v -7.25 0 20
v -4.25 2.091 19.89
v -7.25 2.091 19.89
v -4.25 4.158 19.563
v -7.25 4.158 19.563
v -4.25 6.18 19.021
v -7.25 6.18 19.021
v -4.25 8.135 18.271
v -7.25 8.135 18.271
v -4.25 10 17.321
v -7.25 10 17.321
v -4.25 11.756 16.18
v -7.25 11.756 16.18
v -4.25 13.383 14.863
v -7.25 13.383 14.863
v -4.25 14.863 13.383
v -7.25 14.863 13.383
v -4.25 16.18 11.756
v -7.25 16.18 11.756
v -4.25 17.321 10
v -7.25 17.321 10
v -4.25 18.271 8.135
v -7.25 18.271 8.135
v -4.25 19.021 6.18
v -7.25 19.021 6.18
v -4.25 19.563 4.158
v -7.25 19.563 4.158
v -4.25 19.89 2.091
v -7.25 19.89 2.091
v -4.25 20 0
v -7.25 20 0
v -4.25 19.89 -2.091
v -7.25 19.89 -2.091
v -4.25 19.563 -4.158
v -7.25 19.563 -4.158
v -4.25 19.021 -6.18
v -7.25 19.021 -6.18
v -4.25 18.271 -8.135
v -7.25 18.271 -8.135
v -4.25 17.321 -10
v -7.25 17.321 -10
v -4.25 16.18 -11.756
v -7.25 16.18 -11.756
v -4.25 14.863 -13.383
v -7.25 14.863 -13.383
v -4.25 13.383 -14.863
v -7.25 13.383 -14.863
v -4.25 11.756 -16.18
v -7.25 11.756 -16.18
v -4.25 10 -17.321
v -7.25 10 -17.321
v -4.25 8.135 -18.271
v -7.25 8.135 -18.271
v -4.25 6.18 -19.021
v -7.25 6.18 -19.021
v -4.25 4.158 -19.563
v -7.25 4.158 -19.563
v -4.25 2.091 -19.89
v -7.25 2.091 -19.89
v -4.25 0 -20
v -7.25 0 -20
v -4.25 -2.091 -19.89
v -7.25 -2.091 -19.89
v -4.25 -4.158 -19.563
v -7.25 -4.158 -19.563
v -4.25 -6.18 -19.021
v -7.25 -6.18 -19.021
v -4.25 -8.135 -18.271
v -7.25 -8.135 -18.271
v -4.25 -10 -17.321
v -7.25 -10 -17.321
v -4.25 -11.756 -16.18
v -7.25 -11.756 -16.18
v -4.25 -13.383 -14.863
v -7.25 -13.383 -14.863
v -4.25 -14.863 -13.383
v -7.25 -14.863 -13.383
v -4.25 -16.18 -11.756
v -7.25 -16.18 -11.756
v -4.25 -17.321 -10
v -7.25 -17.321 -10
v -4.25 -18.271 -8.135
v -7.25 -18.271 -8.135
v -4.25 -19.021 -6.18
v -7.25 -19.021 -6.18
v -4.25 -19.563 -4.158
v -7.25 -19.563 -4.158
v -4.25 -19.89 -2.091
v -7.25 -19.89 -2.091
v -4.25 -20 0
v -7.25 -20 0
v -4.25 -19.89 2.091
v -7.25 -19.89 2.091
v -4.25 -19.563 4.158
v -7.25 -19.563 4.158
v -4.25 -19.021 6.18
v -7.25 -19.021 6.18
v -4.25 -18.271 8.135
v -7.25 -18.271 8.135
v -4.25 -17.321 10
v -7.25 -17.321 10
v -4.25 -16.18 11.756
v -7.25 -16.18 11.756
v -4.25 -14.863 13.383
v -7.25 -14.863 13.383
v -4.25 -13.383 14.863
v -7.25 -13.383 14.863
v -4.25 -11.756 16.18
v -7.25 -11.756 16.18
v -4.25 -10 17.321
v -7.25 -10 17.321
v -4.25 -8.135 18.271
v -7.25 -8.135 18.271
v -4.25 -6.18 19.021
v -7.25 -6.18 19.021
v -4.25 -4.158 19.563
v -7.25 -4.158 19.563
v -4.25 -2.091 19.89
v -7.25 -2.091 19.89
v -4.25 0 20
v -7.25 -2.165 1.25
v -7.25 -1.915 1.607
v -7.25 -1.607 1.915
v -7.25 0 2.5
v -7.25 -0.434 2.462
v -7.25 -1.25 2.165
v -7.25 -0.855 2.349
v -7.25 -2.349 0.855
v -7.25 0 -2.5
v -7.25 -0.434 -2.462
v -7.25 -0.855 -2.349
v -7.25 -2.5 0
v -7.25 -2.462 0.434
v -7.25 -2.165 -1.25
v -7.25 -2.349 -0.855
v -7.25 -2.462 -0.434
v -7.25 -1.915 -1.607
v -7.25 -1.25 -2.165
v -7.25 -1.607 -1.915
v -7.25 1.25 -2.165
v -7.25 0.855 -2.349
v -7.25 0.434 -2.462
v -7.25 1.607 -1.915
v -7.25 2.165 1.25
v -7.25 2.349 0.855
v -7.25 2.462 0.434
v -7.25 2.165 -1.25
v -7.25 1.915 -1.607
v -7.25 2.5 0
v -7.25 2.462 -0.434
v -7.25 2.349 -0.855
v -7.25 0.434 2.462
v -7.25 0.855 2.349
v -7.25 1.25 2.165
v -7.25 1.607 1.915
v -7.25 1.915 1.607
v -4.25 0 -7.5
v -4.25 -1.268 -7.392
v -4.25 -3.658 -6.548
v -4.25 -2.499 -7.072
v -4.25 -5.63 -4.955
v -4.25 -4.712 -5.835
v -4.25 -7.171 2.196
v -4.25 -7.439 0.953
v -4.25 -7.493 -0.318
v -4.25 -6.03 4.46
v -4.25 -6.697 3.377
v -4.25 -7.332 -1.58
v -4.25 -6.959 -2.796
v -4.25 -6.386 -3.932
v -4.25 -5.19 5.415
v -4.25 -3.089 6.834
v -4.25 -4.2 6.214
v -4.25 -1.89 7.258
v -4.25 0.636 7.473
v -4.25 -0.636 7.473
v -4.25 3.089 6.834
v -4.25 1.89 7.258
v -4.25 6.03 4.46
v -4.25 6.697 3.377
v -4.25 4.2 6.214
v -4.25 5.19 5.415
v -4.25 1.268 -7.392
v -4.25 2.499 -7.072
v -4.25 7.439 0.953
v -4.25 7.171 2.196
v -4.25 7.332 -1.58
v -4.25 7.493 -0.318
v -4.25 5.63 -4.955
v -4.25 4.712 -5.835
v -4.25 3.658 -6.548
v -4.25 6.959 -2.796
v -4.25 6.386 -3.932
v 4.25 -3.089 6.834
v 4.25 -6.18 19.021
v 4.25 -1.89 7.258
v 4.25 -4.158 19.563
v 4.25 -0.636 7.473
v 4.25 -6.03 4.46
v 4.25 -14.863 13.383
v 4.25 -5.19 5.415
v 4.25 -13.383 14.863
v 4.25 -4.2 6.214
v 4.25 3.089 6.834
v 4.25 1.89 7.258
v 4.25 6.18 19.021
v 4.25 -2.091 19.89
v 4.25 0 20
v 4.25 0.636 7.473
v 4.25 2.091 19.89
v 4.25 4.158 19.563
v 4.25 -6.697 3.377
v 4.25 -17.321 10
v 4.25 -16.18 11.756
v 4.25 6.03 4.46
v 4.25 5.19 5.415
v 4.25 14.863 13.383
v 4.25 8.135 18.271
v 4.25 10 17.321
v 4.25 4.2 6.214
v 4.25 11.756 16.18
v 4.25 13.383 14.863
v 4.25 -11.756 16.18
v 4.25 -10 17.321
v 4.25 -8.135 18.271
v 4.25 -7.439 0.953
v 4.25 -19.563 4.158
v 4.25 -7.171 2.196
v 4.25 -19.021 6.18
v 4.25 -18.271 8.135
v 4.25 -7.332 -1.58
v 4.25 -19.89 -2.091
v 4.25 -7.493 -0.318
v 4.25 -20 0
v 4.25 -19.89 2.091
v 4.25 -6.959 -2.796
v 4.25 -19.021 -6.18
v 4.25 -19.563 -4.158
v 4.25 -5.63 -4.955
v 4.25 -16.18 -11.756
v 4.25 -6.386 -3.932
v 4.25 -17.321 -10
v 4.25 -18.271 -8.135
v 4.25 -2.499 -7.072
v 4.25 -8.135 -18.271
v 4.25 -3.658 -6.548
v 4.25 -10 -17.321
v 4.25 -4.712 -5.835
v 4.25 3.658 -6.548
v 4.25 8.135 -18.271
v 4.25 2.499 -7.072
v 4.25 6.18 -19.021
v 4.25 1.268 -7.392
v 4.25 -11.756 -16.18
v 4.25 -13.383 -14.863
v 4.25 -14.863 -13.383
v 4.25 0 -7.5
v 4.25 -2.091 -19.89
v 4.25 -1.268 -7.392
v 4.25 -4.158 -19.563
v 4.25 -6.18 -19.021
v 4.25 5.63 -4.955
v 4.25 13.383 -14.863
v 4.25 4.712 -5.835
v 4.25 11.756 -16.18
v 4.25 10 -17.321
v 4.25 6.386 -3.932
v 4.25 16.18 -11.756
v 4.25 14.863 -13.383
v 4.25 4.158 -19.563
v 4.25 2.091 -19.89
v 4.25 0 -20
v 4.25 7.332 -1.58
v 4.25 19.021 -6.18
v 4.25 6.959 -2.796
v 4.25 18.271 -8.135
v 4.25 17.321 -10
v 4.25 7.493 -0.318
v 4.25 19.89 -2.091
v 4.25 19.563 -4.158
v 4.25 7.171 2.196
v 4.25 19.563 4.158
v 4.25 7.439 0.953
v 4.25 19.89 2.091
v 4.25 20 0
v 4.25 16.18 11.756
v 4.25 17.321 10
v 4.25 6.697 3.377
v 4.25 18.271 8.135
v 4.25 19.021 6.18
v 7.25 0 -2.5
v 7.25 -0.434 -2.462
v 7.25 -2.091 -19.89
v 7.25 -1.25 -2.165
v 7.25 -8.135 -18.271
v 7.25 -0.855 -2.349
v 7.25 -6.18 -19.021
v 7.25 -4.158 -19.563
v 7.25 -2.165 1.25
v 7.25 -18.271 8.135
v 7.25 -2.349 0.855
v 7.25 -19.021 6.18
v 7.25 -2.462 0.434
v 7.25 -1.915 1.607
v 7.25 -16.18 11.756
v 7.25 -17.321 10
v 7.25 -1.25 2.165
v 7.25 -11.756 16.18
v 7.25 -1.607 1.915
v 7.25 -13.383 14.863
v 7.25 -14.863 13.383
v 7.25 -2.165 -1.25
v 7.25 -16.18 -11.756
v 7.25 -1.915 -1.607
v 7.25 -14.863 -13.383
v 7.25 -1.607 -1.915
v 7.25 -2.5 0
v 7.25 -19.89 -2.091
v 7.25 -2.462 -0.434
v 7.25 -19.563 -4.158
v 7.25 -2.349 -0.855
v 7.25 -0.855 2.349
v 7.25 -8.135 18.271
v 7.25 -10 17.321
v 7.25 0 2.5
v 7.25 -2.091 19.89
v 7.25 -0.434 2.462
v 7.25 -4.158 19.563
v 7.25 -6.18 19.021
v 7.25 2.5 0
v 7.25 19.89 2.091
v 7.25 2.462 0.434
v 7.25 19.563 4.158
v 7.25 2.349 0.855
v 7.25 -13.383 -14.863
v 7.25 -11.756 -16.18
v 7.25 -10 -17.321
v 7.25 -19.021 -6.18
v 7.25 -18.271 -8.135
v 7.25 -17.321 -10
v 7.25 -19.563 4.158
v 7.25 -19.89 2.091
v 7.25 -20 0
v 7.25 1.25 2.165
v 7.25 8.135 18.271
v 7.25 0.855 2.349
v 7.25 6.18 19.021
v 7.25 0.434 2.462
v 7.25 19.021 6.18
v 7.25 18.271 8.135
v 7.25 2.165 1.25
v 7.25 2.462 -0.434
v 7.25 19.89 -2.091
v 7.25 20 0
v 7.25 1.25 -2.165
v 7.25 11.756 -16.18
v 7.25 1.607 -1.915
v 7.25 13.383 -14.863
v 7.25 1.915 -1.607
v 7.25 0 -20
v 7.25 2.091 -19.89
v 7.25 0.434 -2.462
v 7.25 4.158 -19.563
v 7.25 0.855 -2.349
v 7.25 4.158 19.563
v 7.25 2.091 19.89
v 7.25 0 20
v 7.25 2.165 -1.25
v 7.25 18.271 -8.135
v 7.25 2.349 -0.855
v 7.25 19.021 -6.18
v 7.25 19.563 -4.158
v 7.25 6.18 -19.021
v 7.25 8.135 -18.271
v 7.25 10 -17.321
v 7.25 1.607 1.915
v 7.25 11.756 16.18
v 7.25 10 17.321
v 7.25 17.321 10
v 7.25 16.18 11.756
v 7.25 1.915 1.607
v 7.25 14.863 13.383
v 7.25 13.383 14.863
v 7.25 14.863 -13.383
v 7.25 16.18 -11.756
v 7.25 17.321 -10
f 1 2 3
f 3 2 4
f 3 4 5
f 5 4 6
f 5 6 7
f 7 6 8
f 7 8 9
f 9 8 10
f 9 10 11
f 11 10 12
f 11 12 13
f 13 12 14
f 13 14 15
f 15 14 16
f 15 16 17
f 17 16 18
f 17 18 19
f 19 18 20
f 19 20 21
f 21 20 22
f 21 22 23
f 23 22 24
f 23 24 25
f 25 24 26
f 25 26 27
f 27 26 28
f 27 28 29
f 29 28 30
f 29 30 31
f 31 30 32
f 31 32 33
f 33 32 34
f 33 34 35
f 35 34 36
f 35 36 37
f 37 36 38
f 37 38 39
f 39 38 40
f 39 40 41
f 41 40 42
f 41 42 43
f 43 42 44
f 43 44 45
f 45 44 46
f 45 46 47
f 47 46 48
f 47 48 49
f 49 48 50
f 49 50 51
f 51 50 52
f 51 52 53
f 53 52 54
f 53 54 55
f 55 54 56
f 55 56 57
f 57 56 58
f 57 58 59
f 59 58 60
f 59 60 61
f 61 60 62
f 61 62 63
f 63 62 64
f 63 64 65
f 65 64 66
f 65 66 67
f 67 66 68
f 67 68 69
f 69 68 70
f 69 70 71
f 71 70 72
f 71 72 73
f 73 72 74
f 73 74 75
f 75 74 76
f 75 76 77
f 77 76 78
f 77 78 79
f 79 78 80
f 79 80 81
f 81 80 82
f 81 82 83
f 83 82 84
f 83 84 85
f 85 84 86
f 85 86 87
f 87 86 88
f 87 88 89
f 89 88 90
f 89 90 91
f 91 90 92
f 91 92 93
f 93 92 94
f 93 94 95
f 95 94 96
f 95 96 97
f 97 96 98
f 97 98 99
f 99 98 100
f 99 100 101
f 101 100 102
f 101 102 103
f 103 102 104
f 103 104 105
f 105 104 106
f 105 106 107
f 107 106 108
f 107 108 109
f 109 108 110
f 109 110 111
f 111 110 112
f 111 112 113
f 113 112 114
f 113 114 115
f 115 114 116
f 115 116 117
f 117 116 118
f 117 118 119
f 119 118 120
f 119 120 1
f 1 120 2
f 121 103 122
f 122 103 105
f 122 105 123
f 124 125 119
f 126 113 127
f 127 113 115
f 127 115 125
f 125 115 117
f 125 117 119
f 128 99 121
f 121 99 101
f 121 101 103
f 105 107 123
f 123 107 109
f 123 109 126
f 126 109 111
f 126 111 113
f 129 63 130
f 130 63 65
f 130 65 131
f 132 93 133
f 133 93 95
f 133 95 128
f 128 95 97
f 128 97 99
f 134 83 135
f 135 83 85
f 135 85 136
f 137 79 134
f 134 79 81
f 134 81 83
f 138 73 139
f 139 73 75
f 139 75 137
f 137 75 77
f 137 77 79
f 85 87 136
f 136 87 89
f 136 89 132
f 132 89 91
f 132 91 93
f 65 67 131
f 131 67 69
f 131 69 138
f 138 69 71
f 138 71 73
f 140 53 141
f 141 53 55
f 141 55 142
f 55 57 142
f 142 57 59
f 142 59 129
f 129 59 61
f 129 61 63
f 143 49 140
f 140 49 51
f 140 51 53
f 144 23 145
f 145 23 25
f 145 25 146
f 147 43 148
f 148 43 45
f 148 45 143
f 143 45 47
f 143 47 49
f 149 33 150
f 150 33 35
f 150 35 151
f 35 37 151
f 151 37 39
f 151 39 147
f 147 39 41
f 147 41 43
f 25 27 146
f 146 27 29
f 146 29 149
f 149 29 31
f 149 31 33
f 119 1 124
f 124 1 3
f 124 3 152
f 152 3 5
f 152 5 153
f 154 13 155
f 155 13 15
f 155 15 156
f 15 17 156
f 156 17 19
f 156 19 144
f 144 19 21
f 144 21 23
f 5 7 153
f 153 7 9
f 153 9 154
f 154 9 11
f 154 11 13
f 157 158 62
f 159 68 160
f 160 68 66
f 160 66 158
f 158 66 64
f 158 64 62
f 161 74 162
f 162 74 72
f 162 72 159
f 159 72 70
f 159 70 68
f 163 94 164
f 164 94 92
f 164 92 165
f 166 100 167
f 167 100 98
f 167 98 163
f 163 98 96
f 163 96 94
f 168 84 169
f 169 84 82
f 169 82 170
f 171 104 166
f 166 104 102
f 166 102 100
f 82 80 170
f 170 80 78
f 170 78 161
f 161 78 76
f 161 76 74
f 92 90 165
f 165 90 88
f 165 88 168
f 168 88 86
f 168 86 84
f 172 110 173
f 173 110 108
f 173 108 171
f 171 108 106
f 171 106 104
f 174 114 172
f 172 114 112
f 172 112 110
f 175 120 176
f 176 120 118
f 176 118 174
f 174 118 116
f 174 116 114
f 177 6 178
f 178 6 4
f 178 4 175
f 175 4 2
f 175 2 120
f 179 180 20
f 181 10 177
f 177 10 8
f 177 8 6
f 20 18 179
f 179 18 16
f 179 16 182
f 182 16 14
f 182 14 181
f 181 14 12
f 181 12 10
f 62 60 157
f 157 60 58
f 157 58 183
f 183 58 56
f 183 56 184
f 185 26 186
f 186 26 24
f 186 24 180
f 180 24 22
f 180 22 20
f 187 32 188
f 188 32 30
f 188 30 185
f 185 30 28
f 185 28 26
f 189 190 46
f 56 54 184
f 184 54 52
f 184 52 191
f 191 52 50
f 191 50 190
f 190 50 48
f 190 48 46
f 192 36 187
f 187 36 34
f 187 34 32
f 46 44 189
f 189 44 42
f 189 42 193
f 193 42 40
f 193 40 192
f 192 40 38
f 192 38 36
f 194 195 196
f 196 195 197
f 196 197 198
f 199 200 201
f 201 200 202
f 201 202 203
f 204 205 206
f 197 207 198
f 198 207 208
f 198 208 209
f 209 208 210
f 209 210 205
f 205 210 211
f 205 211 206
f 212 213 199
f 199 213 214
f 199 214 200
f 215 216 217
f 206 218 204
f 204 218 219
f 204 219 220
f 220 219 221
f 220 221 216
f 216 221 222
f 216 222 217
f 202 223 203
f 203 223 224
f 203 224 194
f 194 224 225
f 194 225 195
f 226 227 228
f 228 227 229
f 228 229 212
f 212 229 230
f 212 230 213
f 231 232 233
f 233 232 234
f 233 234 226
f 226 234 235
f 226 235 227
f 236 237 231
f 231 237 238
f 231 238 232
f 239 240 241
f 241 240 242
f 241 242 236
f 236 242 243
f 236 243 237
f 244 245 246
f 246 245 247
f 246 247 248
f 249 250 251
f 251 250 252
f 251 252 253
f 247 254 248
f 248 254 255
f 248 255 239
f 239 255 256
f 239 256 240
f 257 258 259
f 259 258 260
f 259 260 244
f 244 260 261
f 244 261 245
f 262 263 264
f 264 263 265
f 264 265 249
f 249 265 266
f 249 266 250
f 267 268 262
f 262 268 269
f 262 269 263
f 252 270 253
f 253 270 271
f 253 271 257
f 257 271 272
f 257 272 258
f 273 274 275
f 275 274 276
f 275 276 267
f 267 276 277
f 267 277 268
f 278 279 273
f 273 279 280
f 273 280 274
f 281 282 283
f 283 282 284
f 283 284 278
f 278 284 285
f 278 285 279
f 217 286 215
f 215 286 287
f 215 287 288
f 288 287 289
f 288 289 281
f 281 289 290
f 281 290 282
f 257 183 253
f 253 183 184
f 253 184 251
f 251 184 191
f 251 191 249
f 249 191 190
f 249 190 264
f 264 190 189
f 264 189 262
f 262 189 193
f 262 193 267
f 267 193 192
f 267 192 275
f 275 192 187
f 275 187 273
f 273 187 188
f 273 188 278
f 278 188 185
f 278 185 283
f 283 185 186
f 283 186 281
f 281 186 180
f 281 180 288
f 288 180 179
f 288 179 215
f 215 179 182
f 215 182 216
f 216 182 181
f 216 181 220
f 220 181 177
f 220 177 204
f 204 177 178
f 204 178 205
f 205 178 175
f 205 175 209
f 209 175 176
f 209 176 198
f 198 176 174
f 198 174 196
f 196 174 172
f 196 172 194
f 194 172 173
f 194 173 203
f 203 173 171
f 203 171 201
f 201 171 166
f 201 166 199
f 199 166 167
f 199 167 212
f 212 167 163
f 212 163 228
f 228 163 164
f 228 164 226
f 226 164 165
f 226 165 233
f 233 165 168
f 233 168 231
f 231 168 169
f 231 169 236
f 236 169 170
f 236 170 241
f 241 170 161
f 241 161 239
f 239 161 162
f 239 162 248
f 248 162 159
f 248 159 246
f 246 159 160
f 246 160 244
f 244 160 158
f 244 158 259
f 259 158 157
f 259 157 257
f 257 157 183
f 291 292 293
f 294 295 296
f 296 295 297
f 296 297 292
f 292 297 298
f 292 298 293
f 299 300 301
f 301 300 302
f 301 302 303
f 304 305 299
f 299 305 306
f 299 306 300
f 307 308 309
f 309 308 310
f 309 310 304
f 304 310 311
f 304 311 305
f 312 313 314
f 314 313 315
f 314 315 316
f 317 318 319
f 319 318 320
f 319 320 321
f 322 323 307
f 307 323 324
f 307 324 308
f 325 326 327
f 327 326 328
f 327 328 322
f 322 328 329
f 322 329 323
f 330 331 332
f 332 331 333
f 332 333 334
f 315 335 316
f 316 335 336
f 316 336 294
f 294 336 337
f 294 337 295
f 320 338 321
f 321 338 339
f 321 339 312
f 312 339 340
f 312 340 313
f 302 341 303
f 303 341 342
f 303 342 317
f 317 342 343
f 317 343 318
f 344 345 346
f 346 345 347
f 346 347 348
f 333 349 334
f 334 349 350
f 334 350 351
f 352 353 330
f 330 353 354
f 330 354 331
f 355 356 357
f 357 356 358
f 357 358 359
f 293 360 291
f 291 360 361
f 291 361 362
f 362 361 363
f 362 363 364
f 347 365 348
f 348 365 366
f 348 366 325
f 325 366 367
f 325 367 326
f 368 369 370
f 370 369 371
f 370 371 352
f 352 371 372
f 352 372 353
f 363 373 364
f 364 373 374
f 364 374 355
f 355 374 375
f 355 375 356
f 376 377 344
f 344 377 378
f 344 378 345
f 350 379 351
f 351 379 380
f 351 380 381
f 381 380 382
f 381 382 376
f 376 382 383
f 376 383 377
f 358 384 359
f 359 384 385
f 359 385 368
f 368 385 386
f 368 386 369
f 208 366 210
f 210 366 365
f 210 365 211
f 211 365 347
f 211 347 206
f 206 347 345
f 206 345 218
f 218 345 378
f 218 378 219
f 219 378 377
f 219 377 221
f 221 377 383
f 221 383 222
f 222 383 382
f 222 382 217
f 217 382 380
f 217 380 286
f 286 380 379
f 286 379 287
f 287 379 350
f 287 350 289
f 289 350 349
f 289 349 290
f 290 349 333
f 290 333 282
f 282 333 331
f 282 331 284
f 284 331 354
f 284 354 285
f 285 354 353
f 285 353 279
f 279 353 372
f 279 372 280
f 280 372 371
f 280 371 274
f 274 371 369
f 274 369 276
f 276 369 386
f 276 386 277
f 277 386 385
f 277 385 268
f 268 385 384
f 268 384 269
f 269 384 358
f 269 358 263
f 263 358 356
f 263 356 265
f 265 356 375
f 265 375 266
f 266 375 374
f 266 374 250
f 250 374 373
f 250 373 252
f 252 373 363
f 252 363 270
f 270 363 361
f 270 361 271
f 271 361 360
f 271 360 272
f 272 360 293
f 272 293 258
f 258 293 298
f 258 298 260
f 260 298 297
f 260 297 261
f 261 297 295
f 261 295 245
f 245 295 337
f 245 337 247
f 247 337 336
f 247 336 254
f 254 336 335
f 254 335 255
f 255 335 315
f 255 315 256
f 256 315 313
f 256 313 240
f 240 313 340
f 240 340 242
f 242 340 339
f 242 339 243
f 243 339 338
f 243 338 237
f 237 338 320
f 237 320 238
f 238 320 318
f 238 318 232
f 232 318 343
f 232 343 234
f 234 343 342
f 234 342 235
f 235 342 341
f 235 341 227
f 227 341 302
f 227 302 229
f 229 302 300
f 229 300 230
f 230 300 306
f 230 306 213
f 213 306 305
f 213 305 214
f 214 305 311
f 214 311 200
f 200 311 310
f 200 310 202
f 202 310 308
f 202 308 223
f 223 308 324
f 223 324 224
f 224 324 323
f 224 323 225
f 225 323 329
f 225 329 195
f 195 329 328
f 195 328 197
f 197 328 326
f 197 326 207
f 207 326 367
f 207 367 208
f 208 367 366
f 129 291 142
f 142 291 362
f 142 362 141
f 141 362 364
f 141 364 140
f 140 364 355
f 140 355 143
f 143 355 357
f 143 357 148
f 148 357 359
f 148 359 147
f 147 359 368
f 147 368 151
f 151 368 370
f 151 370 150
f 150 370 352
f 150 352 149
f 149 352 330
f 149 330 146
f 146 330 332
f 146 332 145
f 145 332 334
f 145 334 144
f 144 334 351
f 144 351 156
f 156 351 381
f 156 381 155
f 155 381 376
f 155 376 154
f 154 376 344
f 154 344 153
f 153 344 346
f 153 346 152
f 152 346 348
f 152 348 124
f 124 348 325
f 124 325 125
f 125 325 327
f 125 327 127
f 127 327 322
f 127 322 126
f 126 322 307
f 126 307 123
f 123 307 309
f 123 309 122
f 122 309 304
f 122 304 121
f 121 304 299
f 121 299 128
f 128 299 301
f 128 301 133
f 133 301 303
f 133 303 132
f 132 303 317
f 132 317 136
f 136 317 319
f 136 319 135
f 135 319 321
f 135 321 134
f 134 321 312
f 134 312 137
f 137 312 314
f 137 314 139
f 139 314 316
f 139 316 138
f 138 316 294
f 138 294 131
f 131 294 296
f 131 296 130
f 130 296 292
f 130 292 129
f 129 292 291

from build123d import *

# Parameters (mm, degrees)
SKETCH1_R               = 20
BOSS_EXTRUDE1_DEPTH     = 7.25
SKETCH2_R               = 20
SKETCH2_R_2             = 7.5
CUT_EXTRUDE1_DEPTH      = 4.25
CUT_EXTRUDE2_DEPTH      = 32.784430151
CUT_EXTRUDE2_DEPTH_BACK = 32.784430151
SKETCH3_R               = 2.5


with BuildPart() as part:
    # Sketch1 → Boss-Extrude1 (new, symmetric)
    with BuildSketch(Plane(origin=(0, 0, 0), x_dir=(0, 0, -1), z_dir=(1, 0, 0))):
        with Locations(Location((0, 0, 0), (0, 0, 180))):
            Circle(SKETCH1_R)
    extrude(amount=BOSS_EXTRUDE1_DEPTH, both=True)

    # Sketch2 → Cut-Extrude1 (cut, symmetric)
    with BuildSketch(Plane(origin=(0, 0, 0), x_dir=(0, 0, -1), z_dir=(1, 0, 0))):
        with Locations(Location((0, 0, 0), (0, 0, 180))):
            Circle(SKETCH2_R)
        Circle(SKETCH2_R_2, mode=Mode.SUBTRACT)
    extrude(amount=CUT_EXTRUDE1_DEPTH, both=True, mode=Mode.SUBTRACT)

    # Sketch3 → Cut-Extrude2 (cut, two sides: drawn at the far end of the back side and taken through both)
    with BuildSketch(Plane(origin=(7.25, 0, 0), x_dir=(0, 0, -1), z_dir=(1, 0, 0)).offset(-CUT_EXTRUDE2_DEPTH_BACK)):
        Circle(SKETCH3_R)
    extrude(amount=CUT_EXTRUDE2_DEPTH + CUT_EXTRUDE2_DEPTH_BACK, mode=Mode.SUBTRACT)


solid = part.part
